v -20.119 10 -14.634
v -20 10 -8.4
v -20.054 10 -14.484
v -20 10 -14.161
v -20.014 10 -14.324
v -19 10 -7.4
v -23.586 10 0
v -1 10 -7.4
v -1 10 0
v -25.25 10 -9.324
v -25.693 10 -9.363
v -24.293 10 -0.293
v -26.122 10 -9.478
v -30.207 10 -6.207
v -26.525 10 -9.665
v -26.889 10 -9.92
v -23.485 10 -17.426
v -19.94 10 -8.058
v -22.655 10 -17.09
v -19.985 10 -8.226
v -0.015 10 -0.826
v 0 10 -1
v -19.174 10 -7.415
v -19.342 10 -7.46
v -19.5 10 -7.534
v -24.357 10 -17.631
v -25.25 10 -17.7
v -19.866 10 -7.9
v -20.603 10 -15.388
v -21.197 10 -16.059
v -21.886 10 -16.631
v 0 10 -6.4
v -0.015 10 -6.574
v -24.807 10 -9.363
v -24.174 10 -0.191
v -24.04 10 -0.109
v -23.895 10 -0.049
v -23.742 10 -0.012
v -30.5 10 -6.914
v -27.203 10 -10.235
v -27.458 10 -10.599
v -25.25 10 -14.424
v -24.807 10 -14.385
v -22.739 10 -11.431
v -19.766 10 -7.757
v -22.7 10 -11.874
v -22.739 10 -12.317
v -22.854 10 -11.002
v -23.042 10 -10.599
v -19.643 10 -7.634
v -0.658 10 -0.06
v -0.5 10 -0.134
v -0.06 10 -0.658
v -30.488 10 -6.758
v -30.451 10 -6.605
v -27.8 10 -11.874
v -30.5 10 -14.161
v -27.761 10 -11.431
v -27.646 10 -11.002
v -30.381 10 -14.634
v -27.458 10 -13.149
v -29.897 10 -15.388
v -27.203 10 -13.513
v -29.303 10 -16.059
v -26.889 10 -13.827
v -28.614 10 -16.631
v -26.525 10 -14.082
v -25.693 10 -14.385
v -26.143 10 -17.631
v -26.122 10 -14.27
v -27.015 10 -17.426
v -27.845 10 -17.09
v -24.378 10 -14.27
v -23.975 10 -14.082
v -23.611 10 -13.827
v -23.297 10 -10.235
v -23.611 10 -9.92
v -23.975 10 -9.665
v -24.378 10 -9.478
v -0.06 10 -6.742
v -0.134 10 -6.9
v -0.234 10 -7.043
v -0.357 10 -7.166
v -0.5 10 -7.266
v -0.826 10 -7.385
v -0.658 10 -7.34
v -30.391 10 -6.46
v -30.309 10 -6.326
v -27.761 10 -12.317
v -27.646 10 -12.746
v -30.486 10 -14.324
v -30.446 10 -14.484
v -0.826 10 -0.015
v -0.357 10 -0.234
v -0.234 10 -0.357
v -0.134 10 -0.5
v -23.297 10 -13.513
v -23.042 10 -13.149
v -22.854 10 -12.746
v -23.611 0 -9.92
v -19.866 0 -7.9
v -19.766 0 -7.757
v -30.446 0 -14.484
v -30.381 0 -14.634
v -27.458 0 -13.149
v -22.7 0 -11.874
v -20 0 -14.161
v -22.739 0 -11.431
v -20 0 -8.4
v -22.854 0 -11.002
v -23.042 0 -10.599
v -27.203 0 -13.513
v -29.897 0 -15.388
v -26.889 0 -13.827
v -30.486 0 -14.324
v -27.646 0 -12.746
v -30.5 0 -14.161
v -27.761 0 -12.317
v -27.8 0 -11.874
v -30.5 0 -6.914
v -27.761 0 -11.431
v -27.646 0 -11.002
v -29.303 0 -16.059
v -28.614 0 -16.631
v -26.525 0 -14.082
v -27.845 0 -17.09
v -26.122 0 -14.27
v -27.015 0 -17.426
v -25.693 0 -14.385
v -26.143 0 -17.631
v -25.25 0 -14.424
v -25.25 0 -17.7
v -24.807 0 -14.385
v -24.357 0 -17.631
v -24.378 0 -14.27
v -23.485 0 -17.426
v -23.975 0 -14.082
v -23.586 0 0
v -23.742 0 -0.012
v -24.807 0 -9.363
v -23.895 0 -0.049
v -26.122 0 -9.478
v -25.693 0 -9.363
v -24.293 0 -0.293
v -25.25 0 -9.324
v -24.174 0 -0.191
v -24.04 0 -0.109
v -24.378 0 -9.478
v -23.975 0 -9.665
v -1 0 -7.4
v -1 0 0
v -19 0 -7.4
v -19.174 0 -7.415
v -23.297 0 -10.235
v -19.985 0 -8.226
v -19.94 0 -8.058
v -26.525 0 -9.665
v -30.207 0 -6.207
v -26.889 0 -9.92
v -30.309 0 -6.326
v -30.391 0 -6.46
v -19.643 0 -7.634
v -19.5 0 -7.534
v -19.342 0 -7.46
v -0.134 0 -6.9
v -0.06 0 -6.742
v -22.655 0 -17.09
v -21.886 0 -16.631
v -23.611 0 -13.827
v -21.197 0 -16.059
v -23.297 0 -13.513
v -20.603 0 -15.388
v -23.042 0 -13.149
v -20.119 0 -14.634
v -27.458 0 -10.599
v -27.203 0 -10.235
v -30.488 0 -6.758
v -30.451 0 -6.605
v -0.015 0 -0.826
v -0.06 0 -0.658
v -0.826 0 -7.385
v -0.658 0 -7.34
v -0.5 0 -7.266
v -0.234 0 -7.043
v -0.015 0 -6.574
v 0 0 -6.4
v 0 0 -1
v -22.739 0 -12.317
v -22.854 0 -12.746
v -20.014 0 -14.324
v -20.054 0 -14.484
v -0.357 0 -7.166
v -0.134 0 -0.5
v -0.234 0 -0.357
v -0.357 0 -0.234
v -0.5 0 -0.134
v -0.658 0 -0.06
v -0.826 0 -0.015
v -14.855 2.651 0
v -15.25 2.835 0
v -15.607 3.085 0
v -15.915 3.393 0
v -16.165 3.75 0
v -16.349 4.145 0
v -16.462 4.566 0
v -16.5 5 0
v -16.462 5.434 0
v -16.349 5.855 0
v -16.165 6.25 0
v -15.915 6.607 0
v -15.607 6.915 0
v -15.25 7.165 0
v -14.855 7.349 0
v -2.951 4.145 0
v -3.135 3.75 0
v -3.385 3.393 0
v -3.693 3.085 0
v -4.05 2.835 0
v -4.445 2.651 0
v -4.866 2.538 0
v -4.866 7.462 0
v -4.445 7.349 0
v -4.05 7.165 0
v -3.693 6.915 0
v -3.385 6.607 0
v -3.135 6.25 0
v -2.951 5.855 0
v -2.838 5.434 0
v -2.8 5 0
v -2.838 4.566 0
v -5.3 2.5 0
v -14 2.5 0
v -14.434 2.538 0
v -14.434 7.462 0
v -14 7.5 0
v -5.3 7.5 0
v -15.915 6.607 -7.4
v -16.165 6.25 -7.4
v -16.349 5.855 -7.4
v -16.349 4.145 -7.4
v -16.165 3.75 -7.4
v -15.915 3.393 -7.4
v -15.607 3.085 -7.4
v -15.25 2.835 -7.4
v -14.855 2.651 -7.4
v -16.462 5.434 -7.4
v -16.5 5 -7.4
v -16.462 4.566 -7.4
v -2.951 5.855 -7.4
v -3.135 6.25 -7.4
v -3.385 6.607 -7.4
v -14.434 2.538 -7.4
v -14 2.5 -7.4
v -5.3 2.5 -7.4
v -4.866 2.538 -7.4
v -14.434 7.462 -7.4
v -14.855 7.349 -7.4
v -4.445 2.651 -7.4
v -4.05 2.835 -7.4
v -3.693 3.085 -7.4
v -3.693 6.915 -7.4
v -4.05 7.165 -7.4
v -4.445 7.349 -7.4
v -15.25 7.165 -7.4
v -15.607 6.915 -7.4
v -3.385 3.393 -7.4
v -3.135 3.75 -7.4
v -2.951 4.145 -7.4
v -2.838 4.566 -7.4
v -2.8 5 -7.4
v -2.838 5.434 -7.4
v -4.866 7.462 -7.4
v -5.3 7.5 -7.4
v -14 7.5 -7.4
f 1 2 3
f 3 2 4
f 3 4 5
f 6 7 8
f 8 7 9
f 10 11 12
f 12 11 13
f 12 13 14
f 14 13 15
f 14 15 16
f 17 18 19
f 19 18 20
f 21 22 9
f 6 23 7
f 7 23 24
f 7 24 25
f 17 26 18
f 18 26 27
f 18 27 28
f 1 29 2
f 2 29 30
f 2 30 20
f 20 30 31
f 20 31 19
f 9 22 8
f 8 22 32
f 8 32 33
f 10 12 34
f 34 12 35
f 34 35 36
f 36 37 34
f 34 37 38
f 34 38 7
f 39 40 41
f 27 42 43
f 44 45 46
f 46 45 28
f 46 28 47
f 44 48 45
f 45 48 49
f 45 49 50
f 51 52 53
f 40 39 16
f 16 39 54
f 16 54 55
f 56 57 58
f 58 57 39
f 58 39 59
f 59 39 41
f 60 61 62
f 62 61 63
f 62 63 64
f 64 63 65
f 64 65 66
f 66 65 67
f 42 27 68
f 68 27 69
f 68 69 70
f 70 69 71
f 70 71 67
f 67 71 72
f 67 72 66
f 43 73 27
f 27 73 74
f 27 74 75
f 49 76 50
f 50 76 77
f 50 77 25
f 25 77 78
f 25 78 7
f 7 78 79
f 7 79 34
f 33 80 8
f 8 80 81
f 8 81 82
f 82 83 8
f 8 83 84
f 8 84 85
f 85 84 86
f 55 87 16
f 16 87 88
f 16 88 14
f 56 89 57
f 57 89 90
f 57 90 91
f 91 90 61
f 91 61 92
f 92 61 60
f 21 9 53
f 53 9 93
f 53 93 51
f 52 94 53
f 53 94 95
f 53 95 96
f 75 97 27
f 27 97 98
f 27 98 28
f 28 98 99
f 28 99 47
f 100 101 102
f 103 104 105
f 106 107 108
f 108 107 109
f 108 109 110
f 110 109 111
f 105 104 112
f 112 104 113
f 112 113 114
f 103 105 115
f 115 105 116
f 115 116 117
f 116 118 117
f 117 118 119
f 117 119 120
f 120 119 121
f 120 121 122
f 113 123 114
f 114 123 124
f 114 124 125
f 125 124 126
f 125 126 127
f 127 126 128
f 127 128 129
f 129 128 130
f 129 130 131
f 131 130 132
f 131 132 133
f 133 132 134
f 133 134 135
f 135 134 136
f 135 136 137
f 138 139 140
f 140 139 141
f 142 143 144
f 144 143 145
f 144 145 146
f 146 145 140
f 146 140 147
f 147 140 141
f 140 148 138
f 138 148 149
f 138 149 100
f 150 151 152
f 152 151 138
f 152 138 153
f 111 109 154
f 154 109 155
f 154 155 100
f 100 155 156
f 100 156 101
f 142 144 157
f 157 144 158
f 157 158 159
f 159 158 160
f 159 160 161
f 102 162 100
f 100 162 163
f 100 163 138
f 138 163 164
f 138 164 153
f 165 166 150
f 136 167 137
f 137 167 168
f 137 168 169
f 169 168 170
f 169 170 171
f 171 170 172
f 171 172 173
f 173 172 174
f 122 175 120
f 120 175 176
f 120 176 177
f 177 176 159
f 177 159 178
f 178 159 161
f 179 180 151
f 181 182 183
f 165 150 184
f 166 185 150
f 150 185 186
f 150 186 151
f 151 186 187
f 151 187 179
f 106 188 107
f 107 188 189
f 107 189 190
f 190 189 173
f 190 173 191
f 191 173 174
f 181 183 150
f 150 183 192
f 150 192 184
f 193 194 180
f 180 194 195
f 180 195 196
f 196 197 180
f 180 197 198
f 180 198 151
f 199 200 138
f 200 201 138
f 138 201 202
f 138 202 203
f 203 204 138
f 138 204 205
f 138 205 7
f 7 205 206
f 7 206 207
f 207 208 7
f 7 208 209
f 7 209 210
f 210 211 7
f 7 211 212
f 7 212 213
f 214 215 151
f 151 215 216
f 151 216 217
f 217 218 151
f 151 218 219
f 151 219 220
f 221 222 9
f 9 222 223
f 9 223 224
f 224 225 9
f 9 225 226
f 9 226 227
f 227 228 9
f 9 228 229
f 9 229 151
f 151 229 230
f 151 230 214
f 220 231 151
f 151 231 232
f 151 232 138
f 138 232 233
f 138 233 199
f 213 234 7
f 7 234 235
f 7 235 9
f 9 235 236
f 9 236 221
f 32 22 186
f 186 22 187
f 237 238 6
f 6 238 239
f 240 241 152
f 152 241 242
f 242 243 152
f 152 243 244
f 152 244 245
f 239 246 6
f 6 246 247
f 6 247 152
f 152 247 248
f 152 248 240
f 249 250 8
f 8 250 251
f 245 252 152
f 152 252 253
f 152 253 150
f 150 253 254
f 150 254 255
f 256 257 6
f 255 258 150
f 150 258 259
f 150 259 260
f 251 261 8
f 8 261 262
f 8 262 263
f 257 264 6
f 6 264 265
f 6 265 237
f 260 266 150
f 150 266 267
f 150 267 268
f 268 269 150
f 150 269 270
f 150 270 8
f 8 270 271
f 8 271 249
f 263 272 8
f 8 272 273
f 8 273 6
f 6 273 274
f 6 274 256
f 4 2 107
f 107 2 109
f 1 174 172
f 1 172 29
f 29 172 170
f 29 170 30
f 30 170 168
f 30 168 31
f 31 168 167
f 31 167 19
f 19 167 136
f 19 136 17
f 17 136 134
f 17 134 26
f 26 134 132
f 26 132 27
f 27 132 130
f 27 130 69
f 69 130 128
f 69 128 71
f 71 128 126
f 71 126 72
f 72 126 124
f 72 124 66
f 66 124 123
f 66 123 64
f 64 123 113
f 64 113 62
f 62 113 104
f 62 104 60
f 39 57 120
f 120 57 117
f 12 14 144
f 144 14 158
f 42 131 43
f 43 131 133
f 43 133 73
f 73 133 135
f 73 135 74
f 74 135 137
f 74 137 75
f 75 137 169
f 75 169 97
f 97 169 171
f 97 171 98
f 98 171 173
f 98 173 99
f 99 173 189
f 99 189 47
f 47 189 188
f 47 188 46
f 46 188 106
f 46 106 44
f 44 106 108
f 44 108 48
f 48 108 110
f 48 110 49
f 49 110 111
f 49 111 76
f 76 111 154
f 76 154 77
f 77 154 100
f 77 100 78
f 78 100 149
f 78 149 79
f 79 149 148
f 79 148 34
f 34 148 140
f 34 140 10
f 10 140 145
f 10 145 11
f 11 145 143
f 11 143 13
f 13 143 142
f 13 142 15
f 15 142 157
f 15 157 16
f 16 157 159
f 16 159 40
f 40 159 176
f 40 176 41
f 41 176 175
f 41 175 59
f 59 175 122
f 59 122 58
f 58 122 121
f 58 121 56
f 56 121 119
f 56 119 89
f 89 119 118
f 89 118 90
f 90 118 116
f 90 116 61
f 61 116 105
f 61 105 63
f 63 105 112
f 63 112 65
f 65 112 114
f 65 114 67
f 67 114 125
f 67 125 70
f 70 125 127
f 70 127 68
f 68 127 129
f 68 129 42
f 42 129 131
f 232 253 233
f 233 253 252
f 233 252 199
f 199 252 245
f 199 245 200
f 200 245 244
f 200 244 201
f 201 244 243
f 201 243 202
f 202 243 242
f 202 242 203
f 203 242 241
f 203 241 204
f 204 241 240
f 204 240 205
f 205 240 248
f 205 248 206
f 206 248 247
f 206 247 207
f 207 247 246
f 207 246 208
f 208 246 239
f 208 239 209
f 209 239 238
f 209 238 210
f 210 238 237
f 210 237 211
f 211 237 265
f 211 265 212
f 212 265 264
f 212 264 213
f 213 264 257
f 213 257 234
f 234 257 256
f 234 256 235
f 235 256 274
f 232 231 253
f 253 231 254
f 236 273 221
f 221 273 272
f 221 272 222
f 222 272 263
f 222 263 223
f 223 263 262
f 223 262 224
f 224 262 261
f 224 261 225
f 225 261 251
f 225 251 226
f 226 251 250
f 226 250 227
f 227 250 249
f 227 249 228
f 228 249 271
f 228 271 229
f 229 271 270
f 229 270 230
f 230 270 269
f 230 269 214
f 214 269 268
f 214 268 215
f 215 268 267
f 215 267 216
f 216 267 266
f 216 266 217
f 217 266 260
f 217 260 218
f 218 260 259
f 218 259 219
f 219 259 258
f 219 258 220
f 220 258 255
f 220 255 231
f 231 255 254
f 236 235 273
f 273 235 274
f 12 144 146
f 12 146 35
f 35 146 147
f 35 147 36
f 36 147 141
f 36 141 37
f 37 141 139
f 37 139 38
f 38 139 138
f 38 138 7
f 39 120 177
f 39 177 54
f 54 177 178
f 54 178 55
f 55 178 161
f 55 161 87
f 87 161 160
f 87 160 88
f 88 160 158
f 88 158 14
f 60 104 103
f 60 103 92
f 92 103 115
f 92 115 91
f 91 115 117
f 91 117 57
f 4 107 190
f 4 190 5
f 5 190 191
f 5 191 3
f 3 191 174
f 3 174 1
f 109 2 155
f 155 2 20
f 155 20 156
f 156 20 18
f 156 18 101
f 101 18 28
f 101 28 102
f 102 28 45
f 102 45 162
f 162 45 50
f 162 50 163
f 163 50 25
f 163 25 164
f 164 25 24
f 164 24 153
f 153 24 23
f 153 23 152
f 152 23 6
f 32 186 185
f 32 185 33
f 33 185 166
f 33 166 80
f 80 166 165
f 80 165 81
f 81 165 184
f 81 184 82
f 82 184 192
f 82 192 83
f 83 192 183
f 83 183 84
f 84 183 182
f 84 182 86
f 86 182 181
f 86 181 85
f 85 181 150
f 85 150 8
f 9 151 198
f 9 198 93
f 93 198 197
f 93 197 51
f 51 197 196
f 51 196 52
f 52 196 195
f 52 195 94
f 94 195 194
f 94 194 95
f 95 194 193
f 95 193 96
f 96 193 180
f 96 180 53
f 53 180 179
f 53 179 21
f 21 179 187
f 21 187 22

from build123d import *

# Parameters (mm, degrees)
SKETCH1_R           = 2.55
BOSS_EXTRUDE1_DEPTH = 10
CUT_EXTRUDE1_DEPTH  = 34.709642537
FILLET2_R           = 1


with BuildPart() as part:
    # Sketch1 → Boss-Extrude1 (new body)
    with BuildSketch(Plane(origin=(0, 0, 0), x_dir=(1, 0, 0), z_dir=(0, 1, 0))):
        with BuildLine():
            Line((0, 0), (0, 7.4))
            Line((0, 7.4), (-20, 7.4))
            Line((-20, 7.4), (-20, 14.4))
            ThreePointArc((-20, 14.4), (-25.25, 17.7), (-30.5, 14.4))
            Line((-30.5, 14.4), (-30.5, 6.5))
            Line((-30.5, 6.5), (-24, 0))
            Line((-24, 0), (0, 0))
        make_face()
        with Locations(Location((-25.25, 11.873863636, 0), (0, 0, 270))):
            Circle(SKETCH1_R, mode=Mode.SUBTRACT)
    extrude(amount=BOSS_EXTRUDE1_DEPTH)

    # Sketch3 → Cut-Extrude1 (cut, through all)
    with BuildSketch(Plane(origin=(0, 0, -7.4), x_dir=(-1, 0, 0), z_dir=(0, 0, -1))):
        with BuildLine():
            Line((14, 2.5), (5.3, 2.5))
            ThreePointArc((5.3, 2.5), (2.8, 5), (5.3, 7.5))
            Line((5.3, 7.5), (14, 7.5))
            ThreePointArc((14, 7.5), (16.5, 5), (14, 2.5))
        make_face()
    extrude(amount=-CUT_EXTRUDE1_DEPTH, mode=Mode.SUBTRACT)

    # Fillet2
    fillet2_edges = [part.edges().sort_by_distance(p)[0] for p in [
        (-24, 5, 0),
        (-30.5, 5, -6.5),
        (-30.5, 5, -14.4),
        (-20, 5, -14.4),
        (-20, 5, -7.4),
        (0, 5, -7.4),
        (0, 5, 0),
    ]]
    fillet(fillet2_edges, radius=FILLET2_R)


solid = part.part
